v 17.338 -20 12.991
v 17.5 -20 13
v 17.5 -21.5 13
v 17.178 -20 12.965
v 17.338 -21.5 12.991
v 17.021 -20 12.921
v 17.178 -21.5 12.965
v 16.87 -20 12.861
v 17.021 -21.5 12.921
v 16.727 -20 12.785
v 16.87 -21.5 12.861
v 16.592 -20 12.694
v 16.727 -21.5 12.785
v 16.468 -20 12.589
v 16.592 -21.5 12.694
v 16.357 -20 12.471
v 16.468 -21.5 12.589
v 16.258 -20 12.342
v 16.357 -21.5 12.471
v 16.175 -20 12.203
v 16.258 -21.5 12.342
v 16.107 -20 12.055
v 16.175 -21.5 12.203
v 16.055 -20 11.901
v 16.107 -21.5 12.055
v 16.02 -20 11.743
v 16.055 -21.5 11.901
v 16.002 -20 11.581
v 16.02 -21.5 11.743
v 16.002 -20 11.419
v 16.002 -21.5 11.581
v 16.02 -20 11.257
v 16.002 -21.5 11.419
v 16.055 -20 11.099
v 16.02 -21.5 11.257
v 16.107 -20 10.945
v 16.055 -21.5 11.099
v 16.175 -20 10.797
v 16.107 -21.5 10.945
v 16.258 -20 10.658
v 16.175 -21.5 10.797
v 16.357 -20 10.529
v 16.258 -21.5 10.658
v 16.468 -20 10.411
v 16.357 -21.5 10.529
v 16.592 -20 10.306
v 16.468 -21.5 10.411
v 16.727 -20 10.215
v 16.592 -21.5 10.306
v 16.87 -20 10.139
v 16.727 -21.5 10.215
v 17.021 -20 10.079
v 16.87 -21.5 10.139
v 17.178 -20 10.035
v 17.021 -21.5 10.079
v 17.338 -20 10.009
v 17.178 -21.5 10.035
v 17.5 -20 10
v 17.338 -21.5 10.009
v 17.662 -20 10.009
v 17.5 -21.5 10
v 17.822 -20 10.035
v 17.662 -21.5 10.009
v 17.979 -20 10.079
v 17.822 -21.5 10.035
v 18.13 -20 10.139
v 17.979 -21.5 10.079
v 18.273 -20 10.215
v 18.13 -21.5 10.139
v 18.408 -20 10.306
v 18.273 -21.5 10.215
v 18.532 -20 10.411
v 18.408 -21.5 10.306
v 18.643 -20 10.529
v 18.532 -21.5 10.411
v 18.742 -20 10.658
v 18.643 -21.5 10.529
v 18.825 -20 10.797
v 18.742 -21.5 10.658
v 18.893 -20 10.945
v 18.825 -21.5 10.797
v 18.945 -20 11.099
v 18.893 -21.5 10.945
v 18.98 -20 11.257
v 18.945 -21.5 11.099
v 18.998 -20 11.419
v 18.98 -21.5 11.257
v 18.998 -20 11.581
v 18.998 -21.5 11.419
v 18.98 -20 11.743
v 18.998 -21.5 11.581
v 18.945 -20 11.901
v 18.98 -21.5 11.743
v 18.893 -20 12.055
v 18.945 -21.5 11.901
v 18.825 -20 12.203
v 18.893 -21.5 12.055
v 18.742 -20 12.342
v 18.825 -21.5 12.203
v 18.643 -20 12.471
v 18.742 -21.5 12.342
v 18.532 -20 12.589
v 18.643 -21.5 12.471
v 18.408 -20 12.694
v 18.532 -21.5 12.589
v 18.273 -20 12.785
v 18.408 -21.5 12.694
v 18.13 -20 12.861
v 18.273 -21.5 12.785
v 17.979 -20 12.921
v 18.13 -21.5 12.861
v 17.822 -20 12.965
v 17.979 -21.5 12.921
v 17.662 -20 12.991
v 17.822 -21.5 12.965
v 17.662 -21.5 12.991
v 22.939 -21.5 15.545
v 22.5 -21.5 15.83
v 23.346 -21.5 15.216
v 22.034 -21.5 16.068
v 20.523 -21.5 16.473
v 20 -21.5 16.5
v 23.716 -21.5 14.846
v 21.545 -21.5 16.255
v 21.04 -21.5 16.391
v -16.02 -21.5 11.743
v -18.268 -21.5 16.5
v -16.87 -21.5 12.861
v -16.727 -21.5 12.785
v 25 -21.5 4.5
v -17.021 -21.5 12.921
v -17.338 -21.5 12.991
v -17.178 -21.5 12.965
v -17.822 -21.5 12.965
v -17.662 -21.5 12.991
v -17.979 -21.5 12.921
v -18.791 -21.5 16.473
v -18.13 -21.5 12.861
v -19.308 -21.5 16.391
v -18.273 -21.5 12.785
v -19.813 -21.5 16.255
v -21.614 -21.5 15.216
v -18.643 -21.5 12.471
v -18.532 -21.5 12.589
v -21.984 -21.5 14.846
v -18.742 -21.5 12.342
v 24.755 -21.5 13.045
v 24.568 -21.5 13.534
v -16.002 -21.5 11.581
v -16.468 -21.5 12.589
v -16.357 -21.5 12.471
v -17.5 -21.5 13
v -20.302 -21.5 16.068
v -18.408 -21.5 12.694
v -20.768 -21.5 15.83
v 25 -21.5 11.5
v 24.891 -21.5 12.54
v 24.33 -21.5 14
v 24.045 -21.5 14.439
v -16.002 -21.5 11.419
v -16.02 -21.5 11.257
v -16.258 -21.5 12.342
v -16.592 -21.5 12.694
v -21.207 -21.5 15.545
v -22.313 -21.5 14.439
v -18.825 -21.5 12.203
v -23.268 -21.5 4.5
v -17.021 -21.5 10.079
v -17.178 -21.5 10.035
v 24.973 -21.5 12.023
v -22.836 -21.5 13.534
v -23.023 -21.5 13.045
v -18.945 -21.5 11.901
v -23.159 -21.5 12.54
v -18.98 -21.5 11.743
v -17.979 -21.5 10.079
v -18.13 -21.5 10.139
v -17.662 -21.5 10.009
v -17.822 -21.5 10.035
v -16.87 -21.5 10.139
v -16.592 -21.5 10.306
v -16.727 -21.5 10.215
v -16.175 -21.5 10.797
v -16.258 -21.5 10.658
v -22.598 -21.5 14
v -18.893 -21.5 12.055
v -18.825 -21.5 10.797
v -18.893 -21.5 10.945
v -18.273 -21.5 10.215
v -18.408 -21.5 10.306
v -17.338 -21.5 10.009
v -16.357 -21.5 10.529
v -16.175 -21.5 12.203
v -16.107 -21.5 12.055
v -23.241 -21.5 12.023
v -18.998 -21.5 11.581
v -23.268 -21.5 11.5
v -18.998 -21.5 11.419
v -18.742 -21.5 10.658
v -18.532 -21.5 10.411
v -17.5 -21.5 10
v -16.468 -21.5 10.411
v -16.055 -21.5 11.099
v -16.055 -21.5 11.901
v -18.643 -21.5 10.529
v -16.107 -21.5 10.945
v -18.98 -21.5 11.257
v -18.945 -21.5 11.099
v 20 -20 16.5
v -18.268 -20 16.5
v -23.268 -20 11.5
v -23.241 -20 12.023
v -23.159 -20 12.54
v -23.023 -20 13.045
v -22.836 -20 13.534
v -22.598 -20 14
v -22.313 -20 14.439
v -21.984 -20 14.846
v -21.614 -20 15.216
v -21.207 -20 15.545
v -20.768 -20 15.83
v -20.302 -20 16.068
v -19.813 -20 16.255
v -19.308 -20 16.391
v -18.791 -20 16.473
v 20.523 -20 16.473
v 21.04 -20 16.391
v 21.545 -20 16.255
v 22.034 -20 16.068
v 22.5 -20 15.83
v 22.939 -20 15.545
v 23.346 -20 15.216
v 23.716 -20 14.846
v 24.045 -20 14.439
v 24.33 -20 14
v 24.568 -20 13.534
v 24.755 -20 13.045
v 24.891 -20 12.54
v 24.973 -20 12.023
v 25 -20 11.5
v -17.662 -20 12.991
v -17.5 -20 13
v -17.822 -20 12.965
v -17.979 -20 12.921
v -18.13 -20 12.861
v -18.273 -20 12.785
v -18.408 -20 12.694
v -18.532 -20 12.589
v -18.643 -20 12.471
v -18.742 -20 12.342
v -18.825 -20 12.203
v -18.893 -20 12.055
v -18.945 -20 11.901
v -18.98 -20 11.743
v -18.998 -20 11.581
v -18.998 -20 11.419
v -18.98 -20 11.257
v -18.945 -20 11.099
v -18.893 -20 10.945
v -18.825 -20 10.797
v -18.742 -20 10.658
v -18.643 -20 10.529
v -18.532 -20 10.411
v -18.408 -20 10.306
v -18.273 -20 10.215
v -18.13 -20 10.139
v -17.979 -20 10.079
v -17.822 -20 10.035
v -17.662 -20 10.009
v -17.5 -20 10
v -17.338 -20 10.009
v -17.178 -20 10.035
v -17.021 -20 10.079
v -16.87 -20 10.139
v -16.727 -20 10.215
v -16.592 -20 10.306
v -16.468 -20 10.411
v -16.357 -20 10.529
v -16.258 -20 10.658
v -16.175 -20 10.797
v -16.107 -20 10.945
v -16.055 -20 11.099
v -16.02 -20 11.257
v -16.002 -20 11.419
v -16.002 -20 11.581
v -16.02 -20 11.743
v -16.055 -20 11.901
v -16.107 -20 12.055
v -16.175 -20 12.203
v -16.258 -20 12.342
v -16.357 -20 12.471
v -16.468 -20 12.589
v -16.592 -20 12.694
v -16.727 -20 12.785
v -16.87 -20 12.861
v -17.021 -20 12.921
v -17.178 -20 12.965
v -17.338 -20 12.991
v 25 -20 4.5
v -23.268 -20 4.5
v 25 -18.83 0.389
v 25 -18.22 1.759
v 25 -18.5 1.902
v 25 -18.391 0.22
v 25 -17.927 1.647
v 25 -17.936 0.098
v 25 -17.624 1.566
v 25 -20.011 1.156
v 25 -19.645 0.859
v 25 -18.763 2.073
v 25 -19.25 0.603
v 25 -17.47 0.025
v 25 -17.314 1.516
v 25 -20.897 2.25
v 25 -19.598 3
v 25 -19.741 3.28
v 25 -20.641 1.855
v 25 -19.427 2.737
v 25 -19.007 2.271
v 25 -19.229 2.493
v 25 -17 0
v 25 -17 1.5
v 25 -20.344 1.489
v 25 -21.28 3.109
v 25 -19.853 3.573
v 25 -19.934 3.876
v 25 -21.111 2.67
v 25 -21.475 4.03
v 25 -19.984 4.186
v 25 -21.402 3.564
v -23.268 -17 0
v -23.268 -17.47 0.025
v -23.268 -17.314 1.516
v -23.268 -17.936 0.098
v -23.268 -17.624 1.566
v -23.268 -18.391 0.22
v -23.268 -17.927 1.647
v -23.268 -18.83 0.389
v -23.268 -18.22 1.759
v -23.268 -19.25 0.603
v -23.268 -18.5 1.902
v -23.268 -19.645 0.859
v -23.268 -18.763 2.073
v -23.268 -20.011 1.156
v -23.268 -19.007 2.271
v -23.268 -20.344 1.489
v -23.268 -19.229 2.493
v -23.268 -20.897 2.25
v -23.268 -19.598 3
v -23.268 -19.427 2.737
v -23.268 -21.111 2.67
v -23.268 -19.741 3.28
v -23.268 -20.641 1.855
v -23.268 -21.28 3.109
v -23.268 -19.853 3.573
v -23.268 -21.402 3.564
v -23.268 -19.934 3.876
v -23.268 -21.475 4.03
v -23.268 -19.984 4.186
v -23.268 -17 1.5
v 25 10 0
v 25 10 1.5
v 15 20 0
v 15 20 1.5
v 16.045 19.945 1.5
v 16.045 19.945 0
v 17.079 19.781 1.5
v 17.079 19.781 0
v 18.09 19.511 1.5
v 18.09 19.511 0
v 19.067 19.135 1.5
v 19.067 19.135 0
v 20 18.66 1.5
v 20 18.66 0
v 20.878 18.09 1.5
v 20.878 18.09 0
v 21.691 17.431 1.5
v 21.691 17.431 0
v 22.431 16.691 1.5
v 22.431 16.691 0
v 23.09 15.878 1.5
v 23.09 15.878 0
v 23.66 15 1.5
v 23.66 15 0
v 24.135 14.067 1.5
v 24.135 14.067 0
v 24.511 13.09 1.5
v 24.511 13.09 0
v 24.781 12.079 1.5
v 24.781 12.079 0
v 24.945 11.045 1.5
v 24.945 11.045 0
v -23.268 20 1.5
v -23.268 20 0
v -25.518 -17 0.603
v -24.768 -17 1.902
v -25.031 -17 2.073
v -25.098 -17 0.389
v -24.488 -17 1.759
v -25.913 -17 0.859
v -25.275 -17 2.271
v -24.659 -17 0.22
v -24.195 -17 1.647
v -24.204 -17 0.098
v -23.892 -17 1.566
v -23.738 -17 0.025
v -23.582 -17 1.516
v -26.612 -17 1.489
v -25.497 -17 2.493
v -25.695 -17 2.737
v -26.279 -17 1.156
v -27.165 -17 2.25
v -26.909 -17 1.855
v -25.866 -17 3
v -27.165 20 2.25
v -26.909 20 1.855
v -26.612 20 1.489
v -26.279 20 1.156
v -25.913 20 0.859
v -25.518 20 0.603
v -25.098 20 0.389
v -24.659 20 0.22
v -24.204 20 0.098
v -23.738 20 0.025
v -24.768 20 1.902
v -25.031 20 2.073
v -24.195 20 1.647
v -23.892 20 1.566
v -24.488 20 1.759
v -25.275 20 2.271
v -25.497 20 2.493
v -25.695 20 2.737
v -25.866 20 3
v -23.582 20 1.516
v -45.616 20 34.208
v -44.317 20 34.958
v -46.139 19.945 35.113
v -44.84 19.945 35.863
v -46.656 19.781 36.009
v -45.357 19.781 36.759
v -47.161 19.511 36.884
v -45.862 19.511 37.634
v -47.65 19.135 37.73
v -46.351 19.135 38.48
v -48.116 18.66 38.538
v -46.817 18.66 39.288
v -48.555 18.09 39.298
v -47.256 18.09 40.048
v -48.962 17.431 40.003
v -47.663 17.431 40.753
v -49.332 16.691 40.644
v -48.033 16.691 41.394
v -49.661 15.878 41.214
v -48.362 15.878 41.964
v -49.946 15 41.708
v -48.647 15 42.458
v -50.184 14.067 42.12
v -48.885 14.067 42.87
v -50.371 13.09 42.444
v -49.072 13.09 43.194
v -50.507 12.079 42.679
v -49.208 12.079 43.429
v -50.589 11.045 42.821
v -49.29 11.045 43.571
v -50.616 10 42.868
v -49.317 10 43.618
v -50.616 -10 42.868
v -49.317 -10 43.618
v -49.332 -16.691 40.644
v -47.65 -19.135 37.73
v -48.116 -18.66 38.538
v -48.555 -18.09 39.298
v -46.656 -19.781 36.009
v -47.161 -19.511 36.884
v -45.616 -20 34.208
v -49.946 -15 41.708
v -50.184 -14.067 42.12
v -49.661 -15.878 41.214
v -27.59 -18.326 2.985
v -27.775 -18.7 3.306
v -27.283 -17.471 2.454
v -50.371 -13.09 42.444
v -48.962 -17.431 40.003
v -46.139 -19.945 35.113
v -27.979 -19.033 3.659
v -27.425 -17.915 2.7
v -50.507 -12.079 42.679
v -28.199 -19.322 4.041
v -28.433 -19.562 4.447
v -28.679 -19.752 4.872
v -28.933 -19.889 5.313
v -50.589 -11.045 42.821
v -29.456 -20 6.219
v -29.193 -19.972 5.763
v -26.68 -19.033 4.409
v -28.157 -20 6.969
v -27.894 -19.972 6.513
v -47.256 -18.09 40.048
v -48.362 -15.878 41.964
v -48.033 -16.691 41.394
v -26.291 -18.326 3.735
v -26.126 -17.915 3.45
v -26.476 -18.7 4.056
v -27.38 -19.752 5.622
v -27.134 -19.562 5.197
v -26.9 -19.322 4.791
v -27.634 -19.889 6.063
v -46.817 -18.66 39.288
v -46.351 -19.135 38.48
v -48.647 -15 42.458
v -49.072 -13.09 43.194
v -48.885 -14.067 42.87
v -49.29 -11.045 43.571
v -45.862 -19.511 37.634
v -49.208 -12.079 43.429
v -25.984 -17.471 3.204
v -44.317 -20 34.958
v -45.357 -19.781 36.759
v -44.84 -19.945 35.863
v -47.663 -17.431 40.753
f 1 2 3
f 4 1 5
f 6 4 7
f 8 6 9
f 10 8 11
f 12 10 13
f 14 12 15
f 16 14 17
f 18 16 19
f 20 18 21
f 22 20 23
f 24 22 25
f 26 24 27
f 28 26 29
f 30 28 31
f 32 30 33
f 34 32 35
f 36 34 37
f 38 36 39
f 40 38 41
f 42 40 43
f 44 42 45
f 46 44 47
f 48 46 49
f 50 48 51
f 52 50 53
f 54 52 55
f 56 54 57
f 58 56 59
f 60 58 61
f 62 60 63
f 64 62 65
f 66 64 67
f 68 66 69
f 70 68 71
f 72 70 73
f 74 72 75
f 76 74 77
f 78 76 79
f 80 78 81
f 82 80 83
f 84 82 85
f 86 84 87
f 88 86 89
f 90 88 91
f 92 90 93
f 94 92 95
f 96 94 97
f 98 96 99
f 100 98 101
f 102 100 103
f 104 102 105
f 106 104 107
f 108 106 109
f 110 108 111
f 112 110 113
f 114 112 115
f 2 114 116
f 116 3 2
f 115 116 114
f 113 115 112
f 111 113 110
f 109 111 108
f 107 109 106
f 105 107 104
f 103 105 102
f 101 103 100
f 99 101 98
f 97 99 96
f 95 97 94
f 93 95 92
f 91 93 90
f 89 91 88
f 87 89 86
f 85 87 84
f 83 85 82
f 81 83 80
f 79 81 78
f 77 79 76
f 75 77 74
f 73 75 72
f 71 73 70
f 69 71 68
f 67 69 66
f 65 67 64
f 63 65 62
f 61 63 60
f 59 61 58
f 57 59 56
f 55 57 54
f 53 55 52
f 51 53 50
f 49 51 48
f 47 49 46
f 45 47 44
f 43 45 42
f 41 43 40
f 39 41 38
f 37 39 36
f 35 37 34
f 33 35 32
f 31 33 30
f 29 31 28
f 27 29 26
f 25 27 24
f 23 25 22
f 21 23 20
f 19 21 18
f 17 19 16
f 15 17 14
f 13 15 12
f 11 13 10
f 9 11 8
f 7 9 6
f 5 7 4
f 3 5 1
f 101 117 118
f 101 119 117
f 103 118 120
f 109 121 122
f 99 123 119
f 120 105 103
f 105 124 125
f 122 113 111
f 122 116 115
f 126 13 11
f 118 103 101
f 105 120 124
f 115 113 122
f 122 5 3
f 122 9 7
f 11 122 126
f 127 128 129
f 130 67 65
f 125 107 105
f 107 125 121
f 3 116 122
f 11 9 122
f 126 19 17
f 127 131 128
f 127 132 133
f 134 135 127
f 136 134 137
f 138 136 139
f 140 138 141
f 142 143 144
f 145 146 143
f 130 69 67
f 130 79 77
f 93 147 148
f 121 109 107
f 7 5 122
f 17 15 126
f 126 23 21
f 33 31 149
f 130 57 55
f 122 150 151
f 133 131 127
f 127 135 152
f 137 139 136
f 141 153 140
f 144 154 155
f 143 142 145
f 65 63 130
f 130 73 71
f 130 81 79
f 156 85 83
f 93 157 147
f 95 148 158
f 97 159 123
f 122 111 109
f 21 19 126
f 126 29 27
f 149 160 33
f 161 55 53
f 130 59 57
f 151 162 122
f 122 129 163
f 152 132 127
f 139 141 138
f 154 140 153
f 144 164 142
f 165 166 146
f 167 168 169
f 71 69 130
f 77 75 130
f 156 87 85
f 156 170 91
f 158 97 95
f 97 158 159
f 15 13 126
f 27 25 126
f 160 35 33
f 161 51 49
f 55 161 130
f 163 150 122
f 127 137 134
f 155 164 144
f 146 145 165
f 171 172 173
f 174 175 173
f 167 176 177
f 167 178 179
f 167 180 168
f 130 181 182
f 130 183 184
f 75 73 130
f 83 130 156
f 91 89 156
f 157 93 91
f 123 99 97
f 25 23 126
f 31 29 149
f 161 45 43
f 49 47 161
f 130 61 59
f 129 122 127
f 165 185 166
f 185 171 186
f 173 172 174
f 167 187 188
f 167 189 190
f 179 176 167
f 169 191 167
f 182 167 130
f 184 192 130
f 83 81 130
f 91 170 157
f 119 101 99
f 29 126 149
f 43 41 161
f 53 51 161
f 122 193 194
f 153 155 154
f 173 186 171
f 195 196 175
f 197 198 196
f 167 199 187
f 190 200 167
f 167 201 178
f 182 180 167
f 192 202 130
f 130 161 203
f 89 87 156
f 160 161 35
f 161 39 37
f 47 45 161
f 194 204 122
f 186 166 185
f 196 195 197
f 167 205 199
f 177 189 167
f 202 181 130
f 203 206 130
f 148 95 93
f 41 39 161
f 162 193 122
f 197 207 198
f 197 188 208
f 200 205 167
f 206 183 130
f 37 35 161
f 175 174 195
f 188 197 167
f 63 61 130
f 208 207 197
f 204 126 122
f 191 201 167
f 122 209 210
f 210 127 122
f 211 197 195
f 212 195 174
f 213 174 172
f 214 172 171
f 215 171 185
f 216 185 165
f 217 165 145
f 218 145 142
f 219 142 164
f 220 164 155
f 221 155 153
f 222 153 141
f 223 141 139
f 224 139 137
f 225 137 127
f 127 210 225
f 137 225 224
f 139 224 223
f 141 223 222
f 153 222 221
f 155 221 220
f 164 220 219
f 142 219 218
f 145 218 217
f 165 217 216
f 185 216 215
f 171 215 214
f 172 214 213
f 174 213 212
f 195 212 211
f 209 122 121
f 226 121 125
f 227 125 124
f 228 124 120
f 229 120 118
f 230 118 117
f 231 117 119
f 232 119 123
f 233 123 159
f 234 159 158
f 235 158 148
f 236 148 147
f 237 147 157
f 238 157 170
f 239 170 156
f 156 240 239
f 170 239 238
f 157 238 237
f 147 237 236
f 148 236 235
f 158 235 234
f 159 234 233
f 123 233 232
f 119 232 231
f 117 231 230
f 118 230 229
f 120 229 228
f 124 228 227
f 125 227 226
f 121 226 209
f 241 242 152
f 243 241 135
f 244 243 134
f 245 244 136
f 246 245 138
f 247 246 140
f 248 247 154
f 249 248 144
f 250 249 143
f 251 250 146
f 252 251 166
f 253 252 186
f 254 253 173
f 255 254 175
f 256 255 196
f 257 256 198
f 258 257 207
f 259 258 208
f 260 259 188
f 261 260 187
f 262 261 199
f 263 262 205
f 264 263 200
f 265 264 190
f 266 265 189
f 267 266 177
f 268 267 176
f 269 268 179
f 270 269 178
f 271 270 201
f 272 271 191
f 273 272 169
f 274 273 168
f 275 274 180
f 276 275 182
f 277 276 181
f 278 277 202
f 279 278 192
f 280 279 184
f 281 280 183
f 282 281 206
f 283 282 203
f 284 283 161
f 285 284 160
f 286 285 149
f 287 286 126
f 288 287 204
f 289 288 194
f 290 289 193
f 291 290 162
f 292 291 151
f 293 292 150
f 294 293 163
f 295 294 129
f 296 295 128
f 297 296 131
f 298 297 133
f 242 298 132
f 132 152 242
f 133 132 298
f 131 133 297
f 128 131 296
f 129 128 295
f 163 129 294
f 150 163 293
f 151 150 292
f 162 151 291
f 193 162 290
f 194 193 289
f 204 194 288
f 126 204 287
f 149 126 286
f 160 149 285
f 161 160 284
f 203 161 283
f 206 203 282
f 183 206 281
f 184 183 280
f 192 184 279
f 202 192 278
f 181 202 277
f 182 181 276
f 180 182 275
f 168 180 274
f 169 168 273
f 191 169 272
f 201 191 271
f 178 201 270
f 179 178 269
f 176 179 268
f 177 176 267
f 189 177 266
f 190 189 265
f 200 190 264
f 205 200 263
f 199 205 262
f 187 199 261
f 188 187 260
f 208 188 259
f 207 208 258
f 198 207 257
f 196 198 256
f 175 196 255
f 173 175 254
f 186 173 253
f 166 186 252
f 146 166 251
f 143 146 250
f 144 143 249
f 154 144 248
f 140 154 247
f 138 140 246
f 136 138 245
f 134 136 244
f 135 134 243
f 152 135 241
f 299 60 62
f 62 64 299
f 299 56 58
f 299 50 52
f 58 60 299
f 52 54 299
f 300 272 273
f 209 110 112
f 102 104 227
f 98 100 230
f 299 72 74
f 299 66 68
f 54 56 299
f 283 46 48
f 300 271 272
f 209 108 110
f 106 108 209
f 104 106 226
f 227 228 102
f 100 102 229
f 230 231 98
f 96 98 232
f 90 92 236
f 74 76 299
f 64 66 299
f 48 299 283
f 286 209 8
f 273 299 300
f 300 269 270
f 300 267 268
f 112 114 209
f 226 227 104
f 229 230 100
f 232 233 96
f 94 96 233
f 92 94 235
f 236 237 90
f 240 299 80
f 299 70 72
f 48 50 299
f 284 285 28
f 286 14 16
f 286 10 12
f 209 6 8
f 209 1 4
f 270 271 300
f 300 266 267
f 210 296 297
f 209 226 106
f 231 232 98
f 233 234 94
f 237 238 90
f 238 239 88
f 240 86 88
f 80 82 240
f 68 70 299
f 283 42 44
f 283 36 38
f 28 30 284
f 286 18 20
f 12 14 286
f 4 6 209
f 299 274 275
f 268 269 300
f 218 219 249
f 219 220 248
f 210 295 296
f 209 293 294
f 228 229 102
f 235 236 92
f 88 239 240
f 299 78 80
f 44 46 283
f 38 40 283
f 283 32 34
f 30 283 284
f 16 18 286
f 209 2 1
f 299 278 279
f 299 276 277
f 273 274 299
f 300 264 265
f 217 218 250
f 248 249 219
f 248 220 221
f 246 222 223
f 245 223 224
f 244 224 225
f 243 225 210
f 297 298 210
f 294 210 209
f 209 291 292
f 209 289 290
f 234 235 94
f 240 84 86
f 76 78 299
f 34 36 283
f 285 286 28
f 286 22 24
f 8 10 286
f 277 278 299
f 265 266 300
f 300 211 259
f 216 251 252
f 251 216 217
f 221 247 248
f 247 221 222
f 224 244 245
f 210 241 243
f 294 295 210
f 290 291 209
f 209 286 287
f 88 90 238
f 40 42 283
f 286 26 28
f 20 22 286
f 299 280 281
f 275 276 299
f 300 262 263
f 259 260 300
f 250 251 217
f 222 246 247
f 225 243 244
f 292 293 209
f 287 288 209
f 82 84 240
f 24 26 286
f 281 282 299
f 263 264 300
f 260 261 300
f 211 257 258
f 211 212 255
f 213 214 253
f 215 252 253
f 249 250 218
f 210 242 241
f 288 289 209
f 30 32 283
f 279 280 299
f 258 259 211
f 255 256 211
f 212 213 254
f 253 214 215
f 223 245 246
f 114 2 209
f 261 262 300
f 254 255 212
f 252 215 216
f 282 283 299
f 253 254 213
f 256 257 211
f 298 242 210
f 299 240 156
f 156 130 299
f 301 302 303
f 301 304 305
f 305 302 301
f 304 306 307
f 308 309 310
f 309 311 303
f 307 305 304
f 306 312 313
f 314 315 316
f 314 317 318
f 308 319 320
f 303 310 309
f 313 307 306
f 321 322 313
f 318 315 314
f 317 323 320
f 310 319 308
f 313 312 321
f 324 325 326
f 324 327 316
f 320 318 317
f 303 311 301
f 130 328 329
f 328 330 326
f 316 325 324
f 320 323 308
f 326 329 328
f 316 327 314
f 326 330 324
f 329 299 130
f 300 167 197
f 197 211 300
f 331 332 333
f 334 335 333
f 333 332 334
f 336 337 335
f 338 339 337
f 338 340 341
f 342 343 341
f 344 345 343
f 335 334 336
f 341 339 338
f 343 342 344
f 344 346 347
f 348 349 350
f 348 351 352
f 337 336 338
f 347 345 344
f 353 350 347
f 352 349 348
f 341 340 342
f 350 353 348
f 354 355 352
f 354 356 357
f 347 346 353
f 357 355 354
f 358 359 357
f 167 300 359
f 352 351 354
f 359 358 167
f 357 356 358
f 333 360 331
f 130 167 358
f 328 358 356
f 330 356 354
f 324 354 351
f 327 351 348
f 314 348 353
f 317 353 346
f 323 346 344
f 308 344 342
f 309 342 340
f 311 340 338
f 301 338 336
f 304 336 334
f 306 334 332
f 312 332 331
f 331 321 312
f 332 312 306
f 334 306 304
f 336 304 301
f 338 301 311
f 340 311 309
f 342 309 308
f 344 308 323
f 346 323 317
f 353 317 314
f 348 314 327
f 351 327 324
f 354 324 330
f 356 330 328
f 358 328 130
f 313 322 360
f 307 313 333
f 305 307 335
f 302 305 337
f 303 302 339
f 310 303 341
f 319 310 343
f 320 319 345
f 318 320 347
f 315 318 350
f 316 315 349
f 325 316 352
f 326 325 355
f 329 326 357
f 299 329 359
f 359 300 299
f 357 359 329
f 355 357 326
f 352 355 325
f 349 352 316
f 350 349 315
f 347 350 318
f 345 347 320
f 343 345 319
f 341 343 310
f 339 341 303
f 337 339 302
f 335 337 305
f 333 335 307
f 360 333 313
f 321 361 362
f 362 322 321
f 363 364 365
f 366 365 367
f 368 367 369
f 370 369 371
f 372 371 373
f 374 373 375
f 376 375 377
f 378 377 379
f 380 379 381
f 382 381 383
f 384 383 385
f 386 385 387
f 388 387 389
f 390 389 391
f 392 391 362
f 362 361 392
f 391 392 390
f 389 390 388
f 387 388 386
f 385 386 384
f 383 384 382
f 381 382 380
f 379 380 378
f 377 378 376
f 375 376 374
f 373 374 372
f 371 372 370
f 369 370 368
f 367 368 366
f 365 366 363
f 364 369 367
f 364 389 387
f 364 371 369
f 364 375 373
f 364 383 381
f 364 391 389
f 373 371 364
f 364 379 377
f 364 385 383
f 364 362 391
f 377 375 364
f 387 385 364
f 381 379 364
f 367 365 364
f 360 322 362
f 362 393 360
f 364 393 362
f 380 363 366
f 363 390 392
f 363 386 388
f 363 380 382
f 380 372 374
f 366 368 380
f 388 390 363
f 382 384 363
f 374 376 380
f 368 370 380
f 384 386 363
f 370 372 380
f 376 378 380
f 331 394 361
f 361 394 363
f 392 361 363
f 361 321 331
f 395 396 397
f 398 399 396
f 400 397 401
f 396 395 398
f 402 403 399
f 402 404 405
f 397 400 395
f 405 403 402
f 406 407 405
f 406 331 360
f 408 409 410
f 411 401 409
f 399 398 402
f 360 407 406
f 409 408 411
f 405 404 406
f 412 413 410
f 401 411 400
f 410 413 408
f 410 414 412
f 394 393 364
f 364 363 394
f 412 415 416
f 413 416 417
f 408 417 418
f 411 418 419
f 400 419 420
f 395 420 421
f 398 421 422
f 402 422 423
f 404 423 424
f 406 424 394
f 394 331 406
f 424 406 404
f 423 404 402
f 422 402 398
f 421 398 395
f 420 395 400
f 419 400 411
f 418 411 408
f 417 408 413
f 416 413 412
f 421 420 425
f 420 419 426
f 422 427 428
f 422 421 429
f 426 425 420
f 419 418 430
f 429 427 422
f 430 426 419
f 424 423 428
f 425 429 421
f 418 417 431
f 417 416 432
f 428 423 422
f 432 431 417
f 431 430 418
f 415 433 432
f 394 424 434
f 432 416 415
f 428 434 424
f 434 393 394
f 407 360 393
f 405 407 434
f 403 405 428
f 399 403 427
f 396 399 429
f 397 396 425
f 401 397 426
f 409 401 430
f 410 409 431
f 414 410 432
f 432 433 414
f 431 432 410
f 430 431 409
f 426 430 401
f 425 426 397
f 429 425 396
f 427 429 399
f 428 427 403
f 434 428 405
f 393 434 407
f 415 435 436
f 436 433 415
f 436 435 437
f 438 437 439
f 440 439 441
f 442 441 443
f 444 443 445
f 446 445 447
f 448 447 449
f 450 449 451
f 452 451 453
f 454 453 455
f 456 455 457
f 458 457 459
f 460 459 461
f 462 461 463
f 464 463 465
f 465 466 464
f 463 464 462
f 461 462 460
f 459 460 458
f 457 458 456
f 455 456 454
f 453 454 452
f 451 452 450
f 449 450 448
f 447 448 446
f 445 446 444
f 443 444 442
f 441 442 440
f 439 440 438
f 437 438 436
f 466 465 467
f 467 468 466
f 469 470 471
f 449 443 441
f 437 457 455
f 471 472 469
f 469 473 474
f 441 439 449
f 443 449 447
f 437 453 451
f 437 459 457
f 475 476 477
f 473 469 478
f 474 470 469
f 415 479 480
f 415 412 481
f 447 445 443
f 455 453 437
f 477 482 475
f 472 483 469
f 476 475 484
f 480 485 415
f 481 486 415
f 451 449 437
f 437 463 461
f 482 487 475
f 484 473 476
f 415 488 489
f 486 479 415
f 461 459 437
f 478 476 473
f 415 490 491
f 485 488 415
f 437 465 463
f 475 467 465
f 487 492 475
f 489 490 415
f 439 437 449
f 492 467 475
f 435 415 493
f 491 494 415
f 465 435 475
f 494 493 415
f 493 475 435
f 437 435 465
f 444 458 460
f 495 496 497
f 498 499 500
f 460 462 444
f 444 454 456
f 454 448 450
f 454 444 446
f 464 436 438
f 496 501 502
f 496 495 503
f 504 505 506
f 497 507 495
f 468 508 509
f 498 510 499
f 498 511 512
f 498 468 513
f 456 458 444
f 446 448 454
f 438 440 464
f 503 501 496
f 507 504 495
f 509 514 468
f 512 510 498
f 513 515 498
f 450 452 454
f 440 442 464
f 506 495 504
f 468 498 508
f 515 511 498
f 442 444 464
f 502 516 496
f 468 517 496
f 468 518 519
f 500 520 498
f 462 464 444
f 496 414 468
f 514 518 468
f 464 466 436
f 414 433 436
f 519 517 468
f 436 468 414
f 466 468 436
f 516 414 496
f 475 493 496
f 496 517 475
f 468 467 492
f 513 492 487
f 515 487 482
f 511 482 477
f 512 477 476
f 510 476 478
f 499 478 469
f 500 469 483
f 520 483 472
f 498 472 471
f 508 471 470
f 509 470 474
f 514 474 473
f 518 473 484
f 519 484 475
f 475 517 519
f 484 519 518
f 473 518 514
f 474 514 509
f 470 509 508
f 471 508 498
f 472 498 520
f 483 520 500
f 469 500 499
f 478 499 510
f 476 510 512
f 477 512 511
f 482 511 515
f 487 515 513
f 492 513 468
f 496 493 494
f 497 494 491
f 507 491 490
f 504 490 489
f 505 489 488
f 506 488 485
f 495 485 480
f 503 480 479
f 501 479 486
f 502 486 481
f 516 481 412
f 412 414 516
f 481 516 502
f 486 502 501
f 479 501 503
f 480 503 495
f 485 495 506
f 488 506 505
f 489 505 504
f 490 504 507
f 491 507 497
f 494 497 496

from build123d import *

# Parameters (mm, degrees)
SKETCH1_W                    = 50
SKETCH1_H                    = 40
BASE_FLANGE1_DEPTH           = 1.5
EDGE_FLANGE1_STRIP_CUT_DEPTH = 40
EDGE_FLANGE1_DEPTH           = 40
EDGE_FLANGE2_START           = -25.866025404
EDGE_FLANGE2_DEPTH           = 2.598076212
EDGE_FLANGE2_START_2         = -23.267949192
EDGE_FLANGE2_2_DEPTH         = 48.267949192
EDGE_FLANGE2_3_DEPTH         = 50.866025404
EDGE_FLANGE2_START_3         = -21
EDGE_FLANGE2_4_DEPTH         = 4
SKETCH12_R                   = 1.5
CUT_EXTRUDE1_DEPTH           = 10
FILLET1_R                    = 10
FILLET2_R                    = 5


with BuildPart() as part:
    # Base-Flange1: sheet metal written as solids
    # Sketch1 → Base-Flange1 (new body)
    with BuildSketch(Plane.XY):
        Rectangle(SKETCH1_W, SKETCH1_H)
    extrude(amount=BASE_FLANGE1_DEPTH)

    # Edge-Flange1: sheet metal written as solids
    # Edge-Flange1 strip (on a plane across the edge) → Edge-Flange1 strip cut (cut)
    with BuildSketch(Plane(origin=(-25, 20, 1.5), x_dir=(0.8660254037844364, 0, 0.5000000000000041), z_dir=(0, -1, 0))):
        Polygon((-9.642304845, 3.834936491), (0.75, -2.165063509), (1.5, -0.866025404), (-8.892304845, 5.133974596), align=None)
    extrude(amount=EDGE_FLANGE1_STRIP_CUT_DEPTH, mode=Mode.SUBTRACT)

    # Edge-Flange1 section (on a plane across the edge) → Edge-Flange1 (add)
    with BuildSketch(Plane(origin=(-25, 20, 1.5), x_dir=(0.8660254037844364, 0, 0.5000000000000041), z_dir=(0, -1, 0))):
        with BuildLine():
            Line((-1.5, 1.732050808), (-1.5, 48.633974596))
            Line((-1.5, 48.633974596), (0, 48.633974596))
            Line((0, 48.633974596), (0, 1.732050808))
            ThreePointArc((0, 1.732050808), (0.401923789, 0.232050808), (1.5, -0.866025404))
            Line((1.5, -0.866025404), (0.75, -2.165063509))
            ThreePointArc((0.75, -2.165063509), (-0.897114317, -0.517949192), (-1.5, 1.732050808))
        make_face()
    extrude(amount=EDGE_FLANGE1_DEPTH)

    # Edge-Flange2: read off the stored shape, not the designer's step
    # Edge-Flange2 outline → Edge-Flange2 (cut)
    with BuildSketch(Plane.YZ.offset(EDGE_FLANGE2_START)):
        with BuildLine():
            Line((-17, 0), (-17, 1.5))
            ThreePointArc((-17, 1.5), (-19.121320344, 2.378679656), (-20, 4.5))
            Line((-20, 4.5), (-20, 16.5))
            Line((-20, 16.5), (-21.5, 16.5))
            Line((-21.5, 16.5), (-21.5, 4.5))
            ThreePointArc((-21.5, 4.5), (-21.107919181, 2.662882693), (-20, 1.145898034))
            ThreePointArc((-20, 1.145898034), (-18.605699404, 0.296224385), (-17, 0))
        make_face()
    extrude(amount=EDGE_FLANGE2_DEPTH, mode=Mode.SUBTRACT)

    # Edge-Flange2 2 outline → Edge-Flange2 2 (add)
    with BuildSketch(Plane.YZ.offset(EDGE_FLANGE2_START_2)):
        with BuildLine():
            Line((-17, 0), (-17, 1.5))
            ThreePointArc((-17, 1.5), (-19.121320344, 2.378679656), (-20, 4.5))
            Line((-20, 4.5), (-20, 16.5))
            Line((-20, 16.5), (-21.5, 16.5))
            Line((-21.5, 16.5), (-21.5, 4.5))
            ThreePointArc((-21.5, 4.5), (-21.107919181, 2.662882693), (-20, 1.145898034))
            ThreePointArc((-20, 1.145898034), (-18.605699404, 0.296224385), (-17, 0))
        make_face()
    extrude(amount=EDGE_FLANGE2_2_DEPTH)

    # Edge-Flange2 3 outline → Edge-Flange2 3 (cut)
    with BuildSketch(Plane.YZ.offset(EDGE_FLANGE2_START)):
        with BuildLine():
            ThreePointArc((-17, 0), (-18.605699404, 0.296224385), (-20, 1.145898034))
            Line((-20, 1.145898034), (-20, 0))
            Line((-20, 0), (-17, 0))
        make_face()
    extrude(amount=EDGE_FLANGE2_3_DEPTH, mode=Mode.SUBTRACT)

    # Edge-Flange2 4 outline → Edge-Flange2 4 (cut)
    with BuildSketch(Plane(origin=(0, 0, 0), x_dir=(1, 0, 0), z_dir=(0, 1, 0)).offset(EDGE_FLANGE2_START_3)):
        with BuildLine():
            ThreePointArc((-25.866025404, -3), (-24.767949192, -1.901923789), (-23.267949192, -1.5))
            Line((-23.267949192, -1.5), (-23.267949192, 0))
            ThreePointArc((-23.267949192, 0), (-25.517949192, -0.602885683), (-27.165063509, -2.25))
            Line((-27.165063509, -2.25), (-25.866025404, -3))
        make_face()
    extrude(amount=EDGE_FLANGE2_4_DEPTH, mode=Mode.SUBTRACT)

    # Sketch12 → Cut-Extrude1 (cut)
    with BuildSketch(Plane(origin=(0, -20, 0), x_dir=(1, 0, 0), z_dir=(0, 1, 0))):
        with Locations(Location((-17.5, -11.5, 0), (0, 0, 270))):
            Circle(SKETCH12_R)
        with Locations(Location((17.5, -11.5, 0), (0, 0, 270))):
            Circle(SKETCH12_R)
    extrude(amount=-CUT_EXTRUDE1_DEPTH, mode=Mode.SUBTRACT)

    # Fillet1
    fillet1_edges = [part.edges().sort_by_distance(p)[0] for p in [
        (-49.966506351, 20, 43.243257487),
        (-49.966506351, -20, 43.243257487),
        (25, 20, 0.75),
    ]]
    fillet(fillet1_edges, radius=FILLET1_R)

    # Fillet2
    # the kernel refuses this fillet: 5 mm, written as the material it takes off along each edge
    with BuildSketch(Plane(origin=(-37.086630924, -20, -3.478219621), x_dir=(-0.5000000001953341, 0, 0.8660254036716625), z_dir=(0.8660254036716625, 0, 0.5000000001953341))) as fillet2_piece_1:
        with BuildLine():
            CenterArc((4.582575695, -5), FILLET2_R, 90, 66.421821522)
            Line((0, -3), (0, 0))
            Line((0, 0), (4.582575695, 0))
        make_face()
    extrude(amount=24.412878474, mode=Mode.SUBTRACT)
    with BuildSketch(Plane(origin=(-23.267949192, -7.5, 16.5), x_dir=(1, 0, 0), z_dir=(0, -1, 0)), Plane(origin=(25, -7.5, 16.5), x_dir=(0, 0, -1), z_dir=(0, -1, 0))) as fillet2_piece_2:
        with BuildLine():
            CenterArc((FILLET2_R, -FILLET2_R), FILLET2_R, 90, 90)
            Line((0, -FILLET2_R), (0, 0))
            Line((0, 0), (FILLET2_R, 0))
        make_face()
    extrude(amount=26.5, mode=Mode.SUBTRACT)


solid = part.part
